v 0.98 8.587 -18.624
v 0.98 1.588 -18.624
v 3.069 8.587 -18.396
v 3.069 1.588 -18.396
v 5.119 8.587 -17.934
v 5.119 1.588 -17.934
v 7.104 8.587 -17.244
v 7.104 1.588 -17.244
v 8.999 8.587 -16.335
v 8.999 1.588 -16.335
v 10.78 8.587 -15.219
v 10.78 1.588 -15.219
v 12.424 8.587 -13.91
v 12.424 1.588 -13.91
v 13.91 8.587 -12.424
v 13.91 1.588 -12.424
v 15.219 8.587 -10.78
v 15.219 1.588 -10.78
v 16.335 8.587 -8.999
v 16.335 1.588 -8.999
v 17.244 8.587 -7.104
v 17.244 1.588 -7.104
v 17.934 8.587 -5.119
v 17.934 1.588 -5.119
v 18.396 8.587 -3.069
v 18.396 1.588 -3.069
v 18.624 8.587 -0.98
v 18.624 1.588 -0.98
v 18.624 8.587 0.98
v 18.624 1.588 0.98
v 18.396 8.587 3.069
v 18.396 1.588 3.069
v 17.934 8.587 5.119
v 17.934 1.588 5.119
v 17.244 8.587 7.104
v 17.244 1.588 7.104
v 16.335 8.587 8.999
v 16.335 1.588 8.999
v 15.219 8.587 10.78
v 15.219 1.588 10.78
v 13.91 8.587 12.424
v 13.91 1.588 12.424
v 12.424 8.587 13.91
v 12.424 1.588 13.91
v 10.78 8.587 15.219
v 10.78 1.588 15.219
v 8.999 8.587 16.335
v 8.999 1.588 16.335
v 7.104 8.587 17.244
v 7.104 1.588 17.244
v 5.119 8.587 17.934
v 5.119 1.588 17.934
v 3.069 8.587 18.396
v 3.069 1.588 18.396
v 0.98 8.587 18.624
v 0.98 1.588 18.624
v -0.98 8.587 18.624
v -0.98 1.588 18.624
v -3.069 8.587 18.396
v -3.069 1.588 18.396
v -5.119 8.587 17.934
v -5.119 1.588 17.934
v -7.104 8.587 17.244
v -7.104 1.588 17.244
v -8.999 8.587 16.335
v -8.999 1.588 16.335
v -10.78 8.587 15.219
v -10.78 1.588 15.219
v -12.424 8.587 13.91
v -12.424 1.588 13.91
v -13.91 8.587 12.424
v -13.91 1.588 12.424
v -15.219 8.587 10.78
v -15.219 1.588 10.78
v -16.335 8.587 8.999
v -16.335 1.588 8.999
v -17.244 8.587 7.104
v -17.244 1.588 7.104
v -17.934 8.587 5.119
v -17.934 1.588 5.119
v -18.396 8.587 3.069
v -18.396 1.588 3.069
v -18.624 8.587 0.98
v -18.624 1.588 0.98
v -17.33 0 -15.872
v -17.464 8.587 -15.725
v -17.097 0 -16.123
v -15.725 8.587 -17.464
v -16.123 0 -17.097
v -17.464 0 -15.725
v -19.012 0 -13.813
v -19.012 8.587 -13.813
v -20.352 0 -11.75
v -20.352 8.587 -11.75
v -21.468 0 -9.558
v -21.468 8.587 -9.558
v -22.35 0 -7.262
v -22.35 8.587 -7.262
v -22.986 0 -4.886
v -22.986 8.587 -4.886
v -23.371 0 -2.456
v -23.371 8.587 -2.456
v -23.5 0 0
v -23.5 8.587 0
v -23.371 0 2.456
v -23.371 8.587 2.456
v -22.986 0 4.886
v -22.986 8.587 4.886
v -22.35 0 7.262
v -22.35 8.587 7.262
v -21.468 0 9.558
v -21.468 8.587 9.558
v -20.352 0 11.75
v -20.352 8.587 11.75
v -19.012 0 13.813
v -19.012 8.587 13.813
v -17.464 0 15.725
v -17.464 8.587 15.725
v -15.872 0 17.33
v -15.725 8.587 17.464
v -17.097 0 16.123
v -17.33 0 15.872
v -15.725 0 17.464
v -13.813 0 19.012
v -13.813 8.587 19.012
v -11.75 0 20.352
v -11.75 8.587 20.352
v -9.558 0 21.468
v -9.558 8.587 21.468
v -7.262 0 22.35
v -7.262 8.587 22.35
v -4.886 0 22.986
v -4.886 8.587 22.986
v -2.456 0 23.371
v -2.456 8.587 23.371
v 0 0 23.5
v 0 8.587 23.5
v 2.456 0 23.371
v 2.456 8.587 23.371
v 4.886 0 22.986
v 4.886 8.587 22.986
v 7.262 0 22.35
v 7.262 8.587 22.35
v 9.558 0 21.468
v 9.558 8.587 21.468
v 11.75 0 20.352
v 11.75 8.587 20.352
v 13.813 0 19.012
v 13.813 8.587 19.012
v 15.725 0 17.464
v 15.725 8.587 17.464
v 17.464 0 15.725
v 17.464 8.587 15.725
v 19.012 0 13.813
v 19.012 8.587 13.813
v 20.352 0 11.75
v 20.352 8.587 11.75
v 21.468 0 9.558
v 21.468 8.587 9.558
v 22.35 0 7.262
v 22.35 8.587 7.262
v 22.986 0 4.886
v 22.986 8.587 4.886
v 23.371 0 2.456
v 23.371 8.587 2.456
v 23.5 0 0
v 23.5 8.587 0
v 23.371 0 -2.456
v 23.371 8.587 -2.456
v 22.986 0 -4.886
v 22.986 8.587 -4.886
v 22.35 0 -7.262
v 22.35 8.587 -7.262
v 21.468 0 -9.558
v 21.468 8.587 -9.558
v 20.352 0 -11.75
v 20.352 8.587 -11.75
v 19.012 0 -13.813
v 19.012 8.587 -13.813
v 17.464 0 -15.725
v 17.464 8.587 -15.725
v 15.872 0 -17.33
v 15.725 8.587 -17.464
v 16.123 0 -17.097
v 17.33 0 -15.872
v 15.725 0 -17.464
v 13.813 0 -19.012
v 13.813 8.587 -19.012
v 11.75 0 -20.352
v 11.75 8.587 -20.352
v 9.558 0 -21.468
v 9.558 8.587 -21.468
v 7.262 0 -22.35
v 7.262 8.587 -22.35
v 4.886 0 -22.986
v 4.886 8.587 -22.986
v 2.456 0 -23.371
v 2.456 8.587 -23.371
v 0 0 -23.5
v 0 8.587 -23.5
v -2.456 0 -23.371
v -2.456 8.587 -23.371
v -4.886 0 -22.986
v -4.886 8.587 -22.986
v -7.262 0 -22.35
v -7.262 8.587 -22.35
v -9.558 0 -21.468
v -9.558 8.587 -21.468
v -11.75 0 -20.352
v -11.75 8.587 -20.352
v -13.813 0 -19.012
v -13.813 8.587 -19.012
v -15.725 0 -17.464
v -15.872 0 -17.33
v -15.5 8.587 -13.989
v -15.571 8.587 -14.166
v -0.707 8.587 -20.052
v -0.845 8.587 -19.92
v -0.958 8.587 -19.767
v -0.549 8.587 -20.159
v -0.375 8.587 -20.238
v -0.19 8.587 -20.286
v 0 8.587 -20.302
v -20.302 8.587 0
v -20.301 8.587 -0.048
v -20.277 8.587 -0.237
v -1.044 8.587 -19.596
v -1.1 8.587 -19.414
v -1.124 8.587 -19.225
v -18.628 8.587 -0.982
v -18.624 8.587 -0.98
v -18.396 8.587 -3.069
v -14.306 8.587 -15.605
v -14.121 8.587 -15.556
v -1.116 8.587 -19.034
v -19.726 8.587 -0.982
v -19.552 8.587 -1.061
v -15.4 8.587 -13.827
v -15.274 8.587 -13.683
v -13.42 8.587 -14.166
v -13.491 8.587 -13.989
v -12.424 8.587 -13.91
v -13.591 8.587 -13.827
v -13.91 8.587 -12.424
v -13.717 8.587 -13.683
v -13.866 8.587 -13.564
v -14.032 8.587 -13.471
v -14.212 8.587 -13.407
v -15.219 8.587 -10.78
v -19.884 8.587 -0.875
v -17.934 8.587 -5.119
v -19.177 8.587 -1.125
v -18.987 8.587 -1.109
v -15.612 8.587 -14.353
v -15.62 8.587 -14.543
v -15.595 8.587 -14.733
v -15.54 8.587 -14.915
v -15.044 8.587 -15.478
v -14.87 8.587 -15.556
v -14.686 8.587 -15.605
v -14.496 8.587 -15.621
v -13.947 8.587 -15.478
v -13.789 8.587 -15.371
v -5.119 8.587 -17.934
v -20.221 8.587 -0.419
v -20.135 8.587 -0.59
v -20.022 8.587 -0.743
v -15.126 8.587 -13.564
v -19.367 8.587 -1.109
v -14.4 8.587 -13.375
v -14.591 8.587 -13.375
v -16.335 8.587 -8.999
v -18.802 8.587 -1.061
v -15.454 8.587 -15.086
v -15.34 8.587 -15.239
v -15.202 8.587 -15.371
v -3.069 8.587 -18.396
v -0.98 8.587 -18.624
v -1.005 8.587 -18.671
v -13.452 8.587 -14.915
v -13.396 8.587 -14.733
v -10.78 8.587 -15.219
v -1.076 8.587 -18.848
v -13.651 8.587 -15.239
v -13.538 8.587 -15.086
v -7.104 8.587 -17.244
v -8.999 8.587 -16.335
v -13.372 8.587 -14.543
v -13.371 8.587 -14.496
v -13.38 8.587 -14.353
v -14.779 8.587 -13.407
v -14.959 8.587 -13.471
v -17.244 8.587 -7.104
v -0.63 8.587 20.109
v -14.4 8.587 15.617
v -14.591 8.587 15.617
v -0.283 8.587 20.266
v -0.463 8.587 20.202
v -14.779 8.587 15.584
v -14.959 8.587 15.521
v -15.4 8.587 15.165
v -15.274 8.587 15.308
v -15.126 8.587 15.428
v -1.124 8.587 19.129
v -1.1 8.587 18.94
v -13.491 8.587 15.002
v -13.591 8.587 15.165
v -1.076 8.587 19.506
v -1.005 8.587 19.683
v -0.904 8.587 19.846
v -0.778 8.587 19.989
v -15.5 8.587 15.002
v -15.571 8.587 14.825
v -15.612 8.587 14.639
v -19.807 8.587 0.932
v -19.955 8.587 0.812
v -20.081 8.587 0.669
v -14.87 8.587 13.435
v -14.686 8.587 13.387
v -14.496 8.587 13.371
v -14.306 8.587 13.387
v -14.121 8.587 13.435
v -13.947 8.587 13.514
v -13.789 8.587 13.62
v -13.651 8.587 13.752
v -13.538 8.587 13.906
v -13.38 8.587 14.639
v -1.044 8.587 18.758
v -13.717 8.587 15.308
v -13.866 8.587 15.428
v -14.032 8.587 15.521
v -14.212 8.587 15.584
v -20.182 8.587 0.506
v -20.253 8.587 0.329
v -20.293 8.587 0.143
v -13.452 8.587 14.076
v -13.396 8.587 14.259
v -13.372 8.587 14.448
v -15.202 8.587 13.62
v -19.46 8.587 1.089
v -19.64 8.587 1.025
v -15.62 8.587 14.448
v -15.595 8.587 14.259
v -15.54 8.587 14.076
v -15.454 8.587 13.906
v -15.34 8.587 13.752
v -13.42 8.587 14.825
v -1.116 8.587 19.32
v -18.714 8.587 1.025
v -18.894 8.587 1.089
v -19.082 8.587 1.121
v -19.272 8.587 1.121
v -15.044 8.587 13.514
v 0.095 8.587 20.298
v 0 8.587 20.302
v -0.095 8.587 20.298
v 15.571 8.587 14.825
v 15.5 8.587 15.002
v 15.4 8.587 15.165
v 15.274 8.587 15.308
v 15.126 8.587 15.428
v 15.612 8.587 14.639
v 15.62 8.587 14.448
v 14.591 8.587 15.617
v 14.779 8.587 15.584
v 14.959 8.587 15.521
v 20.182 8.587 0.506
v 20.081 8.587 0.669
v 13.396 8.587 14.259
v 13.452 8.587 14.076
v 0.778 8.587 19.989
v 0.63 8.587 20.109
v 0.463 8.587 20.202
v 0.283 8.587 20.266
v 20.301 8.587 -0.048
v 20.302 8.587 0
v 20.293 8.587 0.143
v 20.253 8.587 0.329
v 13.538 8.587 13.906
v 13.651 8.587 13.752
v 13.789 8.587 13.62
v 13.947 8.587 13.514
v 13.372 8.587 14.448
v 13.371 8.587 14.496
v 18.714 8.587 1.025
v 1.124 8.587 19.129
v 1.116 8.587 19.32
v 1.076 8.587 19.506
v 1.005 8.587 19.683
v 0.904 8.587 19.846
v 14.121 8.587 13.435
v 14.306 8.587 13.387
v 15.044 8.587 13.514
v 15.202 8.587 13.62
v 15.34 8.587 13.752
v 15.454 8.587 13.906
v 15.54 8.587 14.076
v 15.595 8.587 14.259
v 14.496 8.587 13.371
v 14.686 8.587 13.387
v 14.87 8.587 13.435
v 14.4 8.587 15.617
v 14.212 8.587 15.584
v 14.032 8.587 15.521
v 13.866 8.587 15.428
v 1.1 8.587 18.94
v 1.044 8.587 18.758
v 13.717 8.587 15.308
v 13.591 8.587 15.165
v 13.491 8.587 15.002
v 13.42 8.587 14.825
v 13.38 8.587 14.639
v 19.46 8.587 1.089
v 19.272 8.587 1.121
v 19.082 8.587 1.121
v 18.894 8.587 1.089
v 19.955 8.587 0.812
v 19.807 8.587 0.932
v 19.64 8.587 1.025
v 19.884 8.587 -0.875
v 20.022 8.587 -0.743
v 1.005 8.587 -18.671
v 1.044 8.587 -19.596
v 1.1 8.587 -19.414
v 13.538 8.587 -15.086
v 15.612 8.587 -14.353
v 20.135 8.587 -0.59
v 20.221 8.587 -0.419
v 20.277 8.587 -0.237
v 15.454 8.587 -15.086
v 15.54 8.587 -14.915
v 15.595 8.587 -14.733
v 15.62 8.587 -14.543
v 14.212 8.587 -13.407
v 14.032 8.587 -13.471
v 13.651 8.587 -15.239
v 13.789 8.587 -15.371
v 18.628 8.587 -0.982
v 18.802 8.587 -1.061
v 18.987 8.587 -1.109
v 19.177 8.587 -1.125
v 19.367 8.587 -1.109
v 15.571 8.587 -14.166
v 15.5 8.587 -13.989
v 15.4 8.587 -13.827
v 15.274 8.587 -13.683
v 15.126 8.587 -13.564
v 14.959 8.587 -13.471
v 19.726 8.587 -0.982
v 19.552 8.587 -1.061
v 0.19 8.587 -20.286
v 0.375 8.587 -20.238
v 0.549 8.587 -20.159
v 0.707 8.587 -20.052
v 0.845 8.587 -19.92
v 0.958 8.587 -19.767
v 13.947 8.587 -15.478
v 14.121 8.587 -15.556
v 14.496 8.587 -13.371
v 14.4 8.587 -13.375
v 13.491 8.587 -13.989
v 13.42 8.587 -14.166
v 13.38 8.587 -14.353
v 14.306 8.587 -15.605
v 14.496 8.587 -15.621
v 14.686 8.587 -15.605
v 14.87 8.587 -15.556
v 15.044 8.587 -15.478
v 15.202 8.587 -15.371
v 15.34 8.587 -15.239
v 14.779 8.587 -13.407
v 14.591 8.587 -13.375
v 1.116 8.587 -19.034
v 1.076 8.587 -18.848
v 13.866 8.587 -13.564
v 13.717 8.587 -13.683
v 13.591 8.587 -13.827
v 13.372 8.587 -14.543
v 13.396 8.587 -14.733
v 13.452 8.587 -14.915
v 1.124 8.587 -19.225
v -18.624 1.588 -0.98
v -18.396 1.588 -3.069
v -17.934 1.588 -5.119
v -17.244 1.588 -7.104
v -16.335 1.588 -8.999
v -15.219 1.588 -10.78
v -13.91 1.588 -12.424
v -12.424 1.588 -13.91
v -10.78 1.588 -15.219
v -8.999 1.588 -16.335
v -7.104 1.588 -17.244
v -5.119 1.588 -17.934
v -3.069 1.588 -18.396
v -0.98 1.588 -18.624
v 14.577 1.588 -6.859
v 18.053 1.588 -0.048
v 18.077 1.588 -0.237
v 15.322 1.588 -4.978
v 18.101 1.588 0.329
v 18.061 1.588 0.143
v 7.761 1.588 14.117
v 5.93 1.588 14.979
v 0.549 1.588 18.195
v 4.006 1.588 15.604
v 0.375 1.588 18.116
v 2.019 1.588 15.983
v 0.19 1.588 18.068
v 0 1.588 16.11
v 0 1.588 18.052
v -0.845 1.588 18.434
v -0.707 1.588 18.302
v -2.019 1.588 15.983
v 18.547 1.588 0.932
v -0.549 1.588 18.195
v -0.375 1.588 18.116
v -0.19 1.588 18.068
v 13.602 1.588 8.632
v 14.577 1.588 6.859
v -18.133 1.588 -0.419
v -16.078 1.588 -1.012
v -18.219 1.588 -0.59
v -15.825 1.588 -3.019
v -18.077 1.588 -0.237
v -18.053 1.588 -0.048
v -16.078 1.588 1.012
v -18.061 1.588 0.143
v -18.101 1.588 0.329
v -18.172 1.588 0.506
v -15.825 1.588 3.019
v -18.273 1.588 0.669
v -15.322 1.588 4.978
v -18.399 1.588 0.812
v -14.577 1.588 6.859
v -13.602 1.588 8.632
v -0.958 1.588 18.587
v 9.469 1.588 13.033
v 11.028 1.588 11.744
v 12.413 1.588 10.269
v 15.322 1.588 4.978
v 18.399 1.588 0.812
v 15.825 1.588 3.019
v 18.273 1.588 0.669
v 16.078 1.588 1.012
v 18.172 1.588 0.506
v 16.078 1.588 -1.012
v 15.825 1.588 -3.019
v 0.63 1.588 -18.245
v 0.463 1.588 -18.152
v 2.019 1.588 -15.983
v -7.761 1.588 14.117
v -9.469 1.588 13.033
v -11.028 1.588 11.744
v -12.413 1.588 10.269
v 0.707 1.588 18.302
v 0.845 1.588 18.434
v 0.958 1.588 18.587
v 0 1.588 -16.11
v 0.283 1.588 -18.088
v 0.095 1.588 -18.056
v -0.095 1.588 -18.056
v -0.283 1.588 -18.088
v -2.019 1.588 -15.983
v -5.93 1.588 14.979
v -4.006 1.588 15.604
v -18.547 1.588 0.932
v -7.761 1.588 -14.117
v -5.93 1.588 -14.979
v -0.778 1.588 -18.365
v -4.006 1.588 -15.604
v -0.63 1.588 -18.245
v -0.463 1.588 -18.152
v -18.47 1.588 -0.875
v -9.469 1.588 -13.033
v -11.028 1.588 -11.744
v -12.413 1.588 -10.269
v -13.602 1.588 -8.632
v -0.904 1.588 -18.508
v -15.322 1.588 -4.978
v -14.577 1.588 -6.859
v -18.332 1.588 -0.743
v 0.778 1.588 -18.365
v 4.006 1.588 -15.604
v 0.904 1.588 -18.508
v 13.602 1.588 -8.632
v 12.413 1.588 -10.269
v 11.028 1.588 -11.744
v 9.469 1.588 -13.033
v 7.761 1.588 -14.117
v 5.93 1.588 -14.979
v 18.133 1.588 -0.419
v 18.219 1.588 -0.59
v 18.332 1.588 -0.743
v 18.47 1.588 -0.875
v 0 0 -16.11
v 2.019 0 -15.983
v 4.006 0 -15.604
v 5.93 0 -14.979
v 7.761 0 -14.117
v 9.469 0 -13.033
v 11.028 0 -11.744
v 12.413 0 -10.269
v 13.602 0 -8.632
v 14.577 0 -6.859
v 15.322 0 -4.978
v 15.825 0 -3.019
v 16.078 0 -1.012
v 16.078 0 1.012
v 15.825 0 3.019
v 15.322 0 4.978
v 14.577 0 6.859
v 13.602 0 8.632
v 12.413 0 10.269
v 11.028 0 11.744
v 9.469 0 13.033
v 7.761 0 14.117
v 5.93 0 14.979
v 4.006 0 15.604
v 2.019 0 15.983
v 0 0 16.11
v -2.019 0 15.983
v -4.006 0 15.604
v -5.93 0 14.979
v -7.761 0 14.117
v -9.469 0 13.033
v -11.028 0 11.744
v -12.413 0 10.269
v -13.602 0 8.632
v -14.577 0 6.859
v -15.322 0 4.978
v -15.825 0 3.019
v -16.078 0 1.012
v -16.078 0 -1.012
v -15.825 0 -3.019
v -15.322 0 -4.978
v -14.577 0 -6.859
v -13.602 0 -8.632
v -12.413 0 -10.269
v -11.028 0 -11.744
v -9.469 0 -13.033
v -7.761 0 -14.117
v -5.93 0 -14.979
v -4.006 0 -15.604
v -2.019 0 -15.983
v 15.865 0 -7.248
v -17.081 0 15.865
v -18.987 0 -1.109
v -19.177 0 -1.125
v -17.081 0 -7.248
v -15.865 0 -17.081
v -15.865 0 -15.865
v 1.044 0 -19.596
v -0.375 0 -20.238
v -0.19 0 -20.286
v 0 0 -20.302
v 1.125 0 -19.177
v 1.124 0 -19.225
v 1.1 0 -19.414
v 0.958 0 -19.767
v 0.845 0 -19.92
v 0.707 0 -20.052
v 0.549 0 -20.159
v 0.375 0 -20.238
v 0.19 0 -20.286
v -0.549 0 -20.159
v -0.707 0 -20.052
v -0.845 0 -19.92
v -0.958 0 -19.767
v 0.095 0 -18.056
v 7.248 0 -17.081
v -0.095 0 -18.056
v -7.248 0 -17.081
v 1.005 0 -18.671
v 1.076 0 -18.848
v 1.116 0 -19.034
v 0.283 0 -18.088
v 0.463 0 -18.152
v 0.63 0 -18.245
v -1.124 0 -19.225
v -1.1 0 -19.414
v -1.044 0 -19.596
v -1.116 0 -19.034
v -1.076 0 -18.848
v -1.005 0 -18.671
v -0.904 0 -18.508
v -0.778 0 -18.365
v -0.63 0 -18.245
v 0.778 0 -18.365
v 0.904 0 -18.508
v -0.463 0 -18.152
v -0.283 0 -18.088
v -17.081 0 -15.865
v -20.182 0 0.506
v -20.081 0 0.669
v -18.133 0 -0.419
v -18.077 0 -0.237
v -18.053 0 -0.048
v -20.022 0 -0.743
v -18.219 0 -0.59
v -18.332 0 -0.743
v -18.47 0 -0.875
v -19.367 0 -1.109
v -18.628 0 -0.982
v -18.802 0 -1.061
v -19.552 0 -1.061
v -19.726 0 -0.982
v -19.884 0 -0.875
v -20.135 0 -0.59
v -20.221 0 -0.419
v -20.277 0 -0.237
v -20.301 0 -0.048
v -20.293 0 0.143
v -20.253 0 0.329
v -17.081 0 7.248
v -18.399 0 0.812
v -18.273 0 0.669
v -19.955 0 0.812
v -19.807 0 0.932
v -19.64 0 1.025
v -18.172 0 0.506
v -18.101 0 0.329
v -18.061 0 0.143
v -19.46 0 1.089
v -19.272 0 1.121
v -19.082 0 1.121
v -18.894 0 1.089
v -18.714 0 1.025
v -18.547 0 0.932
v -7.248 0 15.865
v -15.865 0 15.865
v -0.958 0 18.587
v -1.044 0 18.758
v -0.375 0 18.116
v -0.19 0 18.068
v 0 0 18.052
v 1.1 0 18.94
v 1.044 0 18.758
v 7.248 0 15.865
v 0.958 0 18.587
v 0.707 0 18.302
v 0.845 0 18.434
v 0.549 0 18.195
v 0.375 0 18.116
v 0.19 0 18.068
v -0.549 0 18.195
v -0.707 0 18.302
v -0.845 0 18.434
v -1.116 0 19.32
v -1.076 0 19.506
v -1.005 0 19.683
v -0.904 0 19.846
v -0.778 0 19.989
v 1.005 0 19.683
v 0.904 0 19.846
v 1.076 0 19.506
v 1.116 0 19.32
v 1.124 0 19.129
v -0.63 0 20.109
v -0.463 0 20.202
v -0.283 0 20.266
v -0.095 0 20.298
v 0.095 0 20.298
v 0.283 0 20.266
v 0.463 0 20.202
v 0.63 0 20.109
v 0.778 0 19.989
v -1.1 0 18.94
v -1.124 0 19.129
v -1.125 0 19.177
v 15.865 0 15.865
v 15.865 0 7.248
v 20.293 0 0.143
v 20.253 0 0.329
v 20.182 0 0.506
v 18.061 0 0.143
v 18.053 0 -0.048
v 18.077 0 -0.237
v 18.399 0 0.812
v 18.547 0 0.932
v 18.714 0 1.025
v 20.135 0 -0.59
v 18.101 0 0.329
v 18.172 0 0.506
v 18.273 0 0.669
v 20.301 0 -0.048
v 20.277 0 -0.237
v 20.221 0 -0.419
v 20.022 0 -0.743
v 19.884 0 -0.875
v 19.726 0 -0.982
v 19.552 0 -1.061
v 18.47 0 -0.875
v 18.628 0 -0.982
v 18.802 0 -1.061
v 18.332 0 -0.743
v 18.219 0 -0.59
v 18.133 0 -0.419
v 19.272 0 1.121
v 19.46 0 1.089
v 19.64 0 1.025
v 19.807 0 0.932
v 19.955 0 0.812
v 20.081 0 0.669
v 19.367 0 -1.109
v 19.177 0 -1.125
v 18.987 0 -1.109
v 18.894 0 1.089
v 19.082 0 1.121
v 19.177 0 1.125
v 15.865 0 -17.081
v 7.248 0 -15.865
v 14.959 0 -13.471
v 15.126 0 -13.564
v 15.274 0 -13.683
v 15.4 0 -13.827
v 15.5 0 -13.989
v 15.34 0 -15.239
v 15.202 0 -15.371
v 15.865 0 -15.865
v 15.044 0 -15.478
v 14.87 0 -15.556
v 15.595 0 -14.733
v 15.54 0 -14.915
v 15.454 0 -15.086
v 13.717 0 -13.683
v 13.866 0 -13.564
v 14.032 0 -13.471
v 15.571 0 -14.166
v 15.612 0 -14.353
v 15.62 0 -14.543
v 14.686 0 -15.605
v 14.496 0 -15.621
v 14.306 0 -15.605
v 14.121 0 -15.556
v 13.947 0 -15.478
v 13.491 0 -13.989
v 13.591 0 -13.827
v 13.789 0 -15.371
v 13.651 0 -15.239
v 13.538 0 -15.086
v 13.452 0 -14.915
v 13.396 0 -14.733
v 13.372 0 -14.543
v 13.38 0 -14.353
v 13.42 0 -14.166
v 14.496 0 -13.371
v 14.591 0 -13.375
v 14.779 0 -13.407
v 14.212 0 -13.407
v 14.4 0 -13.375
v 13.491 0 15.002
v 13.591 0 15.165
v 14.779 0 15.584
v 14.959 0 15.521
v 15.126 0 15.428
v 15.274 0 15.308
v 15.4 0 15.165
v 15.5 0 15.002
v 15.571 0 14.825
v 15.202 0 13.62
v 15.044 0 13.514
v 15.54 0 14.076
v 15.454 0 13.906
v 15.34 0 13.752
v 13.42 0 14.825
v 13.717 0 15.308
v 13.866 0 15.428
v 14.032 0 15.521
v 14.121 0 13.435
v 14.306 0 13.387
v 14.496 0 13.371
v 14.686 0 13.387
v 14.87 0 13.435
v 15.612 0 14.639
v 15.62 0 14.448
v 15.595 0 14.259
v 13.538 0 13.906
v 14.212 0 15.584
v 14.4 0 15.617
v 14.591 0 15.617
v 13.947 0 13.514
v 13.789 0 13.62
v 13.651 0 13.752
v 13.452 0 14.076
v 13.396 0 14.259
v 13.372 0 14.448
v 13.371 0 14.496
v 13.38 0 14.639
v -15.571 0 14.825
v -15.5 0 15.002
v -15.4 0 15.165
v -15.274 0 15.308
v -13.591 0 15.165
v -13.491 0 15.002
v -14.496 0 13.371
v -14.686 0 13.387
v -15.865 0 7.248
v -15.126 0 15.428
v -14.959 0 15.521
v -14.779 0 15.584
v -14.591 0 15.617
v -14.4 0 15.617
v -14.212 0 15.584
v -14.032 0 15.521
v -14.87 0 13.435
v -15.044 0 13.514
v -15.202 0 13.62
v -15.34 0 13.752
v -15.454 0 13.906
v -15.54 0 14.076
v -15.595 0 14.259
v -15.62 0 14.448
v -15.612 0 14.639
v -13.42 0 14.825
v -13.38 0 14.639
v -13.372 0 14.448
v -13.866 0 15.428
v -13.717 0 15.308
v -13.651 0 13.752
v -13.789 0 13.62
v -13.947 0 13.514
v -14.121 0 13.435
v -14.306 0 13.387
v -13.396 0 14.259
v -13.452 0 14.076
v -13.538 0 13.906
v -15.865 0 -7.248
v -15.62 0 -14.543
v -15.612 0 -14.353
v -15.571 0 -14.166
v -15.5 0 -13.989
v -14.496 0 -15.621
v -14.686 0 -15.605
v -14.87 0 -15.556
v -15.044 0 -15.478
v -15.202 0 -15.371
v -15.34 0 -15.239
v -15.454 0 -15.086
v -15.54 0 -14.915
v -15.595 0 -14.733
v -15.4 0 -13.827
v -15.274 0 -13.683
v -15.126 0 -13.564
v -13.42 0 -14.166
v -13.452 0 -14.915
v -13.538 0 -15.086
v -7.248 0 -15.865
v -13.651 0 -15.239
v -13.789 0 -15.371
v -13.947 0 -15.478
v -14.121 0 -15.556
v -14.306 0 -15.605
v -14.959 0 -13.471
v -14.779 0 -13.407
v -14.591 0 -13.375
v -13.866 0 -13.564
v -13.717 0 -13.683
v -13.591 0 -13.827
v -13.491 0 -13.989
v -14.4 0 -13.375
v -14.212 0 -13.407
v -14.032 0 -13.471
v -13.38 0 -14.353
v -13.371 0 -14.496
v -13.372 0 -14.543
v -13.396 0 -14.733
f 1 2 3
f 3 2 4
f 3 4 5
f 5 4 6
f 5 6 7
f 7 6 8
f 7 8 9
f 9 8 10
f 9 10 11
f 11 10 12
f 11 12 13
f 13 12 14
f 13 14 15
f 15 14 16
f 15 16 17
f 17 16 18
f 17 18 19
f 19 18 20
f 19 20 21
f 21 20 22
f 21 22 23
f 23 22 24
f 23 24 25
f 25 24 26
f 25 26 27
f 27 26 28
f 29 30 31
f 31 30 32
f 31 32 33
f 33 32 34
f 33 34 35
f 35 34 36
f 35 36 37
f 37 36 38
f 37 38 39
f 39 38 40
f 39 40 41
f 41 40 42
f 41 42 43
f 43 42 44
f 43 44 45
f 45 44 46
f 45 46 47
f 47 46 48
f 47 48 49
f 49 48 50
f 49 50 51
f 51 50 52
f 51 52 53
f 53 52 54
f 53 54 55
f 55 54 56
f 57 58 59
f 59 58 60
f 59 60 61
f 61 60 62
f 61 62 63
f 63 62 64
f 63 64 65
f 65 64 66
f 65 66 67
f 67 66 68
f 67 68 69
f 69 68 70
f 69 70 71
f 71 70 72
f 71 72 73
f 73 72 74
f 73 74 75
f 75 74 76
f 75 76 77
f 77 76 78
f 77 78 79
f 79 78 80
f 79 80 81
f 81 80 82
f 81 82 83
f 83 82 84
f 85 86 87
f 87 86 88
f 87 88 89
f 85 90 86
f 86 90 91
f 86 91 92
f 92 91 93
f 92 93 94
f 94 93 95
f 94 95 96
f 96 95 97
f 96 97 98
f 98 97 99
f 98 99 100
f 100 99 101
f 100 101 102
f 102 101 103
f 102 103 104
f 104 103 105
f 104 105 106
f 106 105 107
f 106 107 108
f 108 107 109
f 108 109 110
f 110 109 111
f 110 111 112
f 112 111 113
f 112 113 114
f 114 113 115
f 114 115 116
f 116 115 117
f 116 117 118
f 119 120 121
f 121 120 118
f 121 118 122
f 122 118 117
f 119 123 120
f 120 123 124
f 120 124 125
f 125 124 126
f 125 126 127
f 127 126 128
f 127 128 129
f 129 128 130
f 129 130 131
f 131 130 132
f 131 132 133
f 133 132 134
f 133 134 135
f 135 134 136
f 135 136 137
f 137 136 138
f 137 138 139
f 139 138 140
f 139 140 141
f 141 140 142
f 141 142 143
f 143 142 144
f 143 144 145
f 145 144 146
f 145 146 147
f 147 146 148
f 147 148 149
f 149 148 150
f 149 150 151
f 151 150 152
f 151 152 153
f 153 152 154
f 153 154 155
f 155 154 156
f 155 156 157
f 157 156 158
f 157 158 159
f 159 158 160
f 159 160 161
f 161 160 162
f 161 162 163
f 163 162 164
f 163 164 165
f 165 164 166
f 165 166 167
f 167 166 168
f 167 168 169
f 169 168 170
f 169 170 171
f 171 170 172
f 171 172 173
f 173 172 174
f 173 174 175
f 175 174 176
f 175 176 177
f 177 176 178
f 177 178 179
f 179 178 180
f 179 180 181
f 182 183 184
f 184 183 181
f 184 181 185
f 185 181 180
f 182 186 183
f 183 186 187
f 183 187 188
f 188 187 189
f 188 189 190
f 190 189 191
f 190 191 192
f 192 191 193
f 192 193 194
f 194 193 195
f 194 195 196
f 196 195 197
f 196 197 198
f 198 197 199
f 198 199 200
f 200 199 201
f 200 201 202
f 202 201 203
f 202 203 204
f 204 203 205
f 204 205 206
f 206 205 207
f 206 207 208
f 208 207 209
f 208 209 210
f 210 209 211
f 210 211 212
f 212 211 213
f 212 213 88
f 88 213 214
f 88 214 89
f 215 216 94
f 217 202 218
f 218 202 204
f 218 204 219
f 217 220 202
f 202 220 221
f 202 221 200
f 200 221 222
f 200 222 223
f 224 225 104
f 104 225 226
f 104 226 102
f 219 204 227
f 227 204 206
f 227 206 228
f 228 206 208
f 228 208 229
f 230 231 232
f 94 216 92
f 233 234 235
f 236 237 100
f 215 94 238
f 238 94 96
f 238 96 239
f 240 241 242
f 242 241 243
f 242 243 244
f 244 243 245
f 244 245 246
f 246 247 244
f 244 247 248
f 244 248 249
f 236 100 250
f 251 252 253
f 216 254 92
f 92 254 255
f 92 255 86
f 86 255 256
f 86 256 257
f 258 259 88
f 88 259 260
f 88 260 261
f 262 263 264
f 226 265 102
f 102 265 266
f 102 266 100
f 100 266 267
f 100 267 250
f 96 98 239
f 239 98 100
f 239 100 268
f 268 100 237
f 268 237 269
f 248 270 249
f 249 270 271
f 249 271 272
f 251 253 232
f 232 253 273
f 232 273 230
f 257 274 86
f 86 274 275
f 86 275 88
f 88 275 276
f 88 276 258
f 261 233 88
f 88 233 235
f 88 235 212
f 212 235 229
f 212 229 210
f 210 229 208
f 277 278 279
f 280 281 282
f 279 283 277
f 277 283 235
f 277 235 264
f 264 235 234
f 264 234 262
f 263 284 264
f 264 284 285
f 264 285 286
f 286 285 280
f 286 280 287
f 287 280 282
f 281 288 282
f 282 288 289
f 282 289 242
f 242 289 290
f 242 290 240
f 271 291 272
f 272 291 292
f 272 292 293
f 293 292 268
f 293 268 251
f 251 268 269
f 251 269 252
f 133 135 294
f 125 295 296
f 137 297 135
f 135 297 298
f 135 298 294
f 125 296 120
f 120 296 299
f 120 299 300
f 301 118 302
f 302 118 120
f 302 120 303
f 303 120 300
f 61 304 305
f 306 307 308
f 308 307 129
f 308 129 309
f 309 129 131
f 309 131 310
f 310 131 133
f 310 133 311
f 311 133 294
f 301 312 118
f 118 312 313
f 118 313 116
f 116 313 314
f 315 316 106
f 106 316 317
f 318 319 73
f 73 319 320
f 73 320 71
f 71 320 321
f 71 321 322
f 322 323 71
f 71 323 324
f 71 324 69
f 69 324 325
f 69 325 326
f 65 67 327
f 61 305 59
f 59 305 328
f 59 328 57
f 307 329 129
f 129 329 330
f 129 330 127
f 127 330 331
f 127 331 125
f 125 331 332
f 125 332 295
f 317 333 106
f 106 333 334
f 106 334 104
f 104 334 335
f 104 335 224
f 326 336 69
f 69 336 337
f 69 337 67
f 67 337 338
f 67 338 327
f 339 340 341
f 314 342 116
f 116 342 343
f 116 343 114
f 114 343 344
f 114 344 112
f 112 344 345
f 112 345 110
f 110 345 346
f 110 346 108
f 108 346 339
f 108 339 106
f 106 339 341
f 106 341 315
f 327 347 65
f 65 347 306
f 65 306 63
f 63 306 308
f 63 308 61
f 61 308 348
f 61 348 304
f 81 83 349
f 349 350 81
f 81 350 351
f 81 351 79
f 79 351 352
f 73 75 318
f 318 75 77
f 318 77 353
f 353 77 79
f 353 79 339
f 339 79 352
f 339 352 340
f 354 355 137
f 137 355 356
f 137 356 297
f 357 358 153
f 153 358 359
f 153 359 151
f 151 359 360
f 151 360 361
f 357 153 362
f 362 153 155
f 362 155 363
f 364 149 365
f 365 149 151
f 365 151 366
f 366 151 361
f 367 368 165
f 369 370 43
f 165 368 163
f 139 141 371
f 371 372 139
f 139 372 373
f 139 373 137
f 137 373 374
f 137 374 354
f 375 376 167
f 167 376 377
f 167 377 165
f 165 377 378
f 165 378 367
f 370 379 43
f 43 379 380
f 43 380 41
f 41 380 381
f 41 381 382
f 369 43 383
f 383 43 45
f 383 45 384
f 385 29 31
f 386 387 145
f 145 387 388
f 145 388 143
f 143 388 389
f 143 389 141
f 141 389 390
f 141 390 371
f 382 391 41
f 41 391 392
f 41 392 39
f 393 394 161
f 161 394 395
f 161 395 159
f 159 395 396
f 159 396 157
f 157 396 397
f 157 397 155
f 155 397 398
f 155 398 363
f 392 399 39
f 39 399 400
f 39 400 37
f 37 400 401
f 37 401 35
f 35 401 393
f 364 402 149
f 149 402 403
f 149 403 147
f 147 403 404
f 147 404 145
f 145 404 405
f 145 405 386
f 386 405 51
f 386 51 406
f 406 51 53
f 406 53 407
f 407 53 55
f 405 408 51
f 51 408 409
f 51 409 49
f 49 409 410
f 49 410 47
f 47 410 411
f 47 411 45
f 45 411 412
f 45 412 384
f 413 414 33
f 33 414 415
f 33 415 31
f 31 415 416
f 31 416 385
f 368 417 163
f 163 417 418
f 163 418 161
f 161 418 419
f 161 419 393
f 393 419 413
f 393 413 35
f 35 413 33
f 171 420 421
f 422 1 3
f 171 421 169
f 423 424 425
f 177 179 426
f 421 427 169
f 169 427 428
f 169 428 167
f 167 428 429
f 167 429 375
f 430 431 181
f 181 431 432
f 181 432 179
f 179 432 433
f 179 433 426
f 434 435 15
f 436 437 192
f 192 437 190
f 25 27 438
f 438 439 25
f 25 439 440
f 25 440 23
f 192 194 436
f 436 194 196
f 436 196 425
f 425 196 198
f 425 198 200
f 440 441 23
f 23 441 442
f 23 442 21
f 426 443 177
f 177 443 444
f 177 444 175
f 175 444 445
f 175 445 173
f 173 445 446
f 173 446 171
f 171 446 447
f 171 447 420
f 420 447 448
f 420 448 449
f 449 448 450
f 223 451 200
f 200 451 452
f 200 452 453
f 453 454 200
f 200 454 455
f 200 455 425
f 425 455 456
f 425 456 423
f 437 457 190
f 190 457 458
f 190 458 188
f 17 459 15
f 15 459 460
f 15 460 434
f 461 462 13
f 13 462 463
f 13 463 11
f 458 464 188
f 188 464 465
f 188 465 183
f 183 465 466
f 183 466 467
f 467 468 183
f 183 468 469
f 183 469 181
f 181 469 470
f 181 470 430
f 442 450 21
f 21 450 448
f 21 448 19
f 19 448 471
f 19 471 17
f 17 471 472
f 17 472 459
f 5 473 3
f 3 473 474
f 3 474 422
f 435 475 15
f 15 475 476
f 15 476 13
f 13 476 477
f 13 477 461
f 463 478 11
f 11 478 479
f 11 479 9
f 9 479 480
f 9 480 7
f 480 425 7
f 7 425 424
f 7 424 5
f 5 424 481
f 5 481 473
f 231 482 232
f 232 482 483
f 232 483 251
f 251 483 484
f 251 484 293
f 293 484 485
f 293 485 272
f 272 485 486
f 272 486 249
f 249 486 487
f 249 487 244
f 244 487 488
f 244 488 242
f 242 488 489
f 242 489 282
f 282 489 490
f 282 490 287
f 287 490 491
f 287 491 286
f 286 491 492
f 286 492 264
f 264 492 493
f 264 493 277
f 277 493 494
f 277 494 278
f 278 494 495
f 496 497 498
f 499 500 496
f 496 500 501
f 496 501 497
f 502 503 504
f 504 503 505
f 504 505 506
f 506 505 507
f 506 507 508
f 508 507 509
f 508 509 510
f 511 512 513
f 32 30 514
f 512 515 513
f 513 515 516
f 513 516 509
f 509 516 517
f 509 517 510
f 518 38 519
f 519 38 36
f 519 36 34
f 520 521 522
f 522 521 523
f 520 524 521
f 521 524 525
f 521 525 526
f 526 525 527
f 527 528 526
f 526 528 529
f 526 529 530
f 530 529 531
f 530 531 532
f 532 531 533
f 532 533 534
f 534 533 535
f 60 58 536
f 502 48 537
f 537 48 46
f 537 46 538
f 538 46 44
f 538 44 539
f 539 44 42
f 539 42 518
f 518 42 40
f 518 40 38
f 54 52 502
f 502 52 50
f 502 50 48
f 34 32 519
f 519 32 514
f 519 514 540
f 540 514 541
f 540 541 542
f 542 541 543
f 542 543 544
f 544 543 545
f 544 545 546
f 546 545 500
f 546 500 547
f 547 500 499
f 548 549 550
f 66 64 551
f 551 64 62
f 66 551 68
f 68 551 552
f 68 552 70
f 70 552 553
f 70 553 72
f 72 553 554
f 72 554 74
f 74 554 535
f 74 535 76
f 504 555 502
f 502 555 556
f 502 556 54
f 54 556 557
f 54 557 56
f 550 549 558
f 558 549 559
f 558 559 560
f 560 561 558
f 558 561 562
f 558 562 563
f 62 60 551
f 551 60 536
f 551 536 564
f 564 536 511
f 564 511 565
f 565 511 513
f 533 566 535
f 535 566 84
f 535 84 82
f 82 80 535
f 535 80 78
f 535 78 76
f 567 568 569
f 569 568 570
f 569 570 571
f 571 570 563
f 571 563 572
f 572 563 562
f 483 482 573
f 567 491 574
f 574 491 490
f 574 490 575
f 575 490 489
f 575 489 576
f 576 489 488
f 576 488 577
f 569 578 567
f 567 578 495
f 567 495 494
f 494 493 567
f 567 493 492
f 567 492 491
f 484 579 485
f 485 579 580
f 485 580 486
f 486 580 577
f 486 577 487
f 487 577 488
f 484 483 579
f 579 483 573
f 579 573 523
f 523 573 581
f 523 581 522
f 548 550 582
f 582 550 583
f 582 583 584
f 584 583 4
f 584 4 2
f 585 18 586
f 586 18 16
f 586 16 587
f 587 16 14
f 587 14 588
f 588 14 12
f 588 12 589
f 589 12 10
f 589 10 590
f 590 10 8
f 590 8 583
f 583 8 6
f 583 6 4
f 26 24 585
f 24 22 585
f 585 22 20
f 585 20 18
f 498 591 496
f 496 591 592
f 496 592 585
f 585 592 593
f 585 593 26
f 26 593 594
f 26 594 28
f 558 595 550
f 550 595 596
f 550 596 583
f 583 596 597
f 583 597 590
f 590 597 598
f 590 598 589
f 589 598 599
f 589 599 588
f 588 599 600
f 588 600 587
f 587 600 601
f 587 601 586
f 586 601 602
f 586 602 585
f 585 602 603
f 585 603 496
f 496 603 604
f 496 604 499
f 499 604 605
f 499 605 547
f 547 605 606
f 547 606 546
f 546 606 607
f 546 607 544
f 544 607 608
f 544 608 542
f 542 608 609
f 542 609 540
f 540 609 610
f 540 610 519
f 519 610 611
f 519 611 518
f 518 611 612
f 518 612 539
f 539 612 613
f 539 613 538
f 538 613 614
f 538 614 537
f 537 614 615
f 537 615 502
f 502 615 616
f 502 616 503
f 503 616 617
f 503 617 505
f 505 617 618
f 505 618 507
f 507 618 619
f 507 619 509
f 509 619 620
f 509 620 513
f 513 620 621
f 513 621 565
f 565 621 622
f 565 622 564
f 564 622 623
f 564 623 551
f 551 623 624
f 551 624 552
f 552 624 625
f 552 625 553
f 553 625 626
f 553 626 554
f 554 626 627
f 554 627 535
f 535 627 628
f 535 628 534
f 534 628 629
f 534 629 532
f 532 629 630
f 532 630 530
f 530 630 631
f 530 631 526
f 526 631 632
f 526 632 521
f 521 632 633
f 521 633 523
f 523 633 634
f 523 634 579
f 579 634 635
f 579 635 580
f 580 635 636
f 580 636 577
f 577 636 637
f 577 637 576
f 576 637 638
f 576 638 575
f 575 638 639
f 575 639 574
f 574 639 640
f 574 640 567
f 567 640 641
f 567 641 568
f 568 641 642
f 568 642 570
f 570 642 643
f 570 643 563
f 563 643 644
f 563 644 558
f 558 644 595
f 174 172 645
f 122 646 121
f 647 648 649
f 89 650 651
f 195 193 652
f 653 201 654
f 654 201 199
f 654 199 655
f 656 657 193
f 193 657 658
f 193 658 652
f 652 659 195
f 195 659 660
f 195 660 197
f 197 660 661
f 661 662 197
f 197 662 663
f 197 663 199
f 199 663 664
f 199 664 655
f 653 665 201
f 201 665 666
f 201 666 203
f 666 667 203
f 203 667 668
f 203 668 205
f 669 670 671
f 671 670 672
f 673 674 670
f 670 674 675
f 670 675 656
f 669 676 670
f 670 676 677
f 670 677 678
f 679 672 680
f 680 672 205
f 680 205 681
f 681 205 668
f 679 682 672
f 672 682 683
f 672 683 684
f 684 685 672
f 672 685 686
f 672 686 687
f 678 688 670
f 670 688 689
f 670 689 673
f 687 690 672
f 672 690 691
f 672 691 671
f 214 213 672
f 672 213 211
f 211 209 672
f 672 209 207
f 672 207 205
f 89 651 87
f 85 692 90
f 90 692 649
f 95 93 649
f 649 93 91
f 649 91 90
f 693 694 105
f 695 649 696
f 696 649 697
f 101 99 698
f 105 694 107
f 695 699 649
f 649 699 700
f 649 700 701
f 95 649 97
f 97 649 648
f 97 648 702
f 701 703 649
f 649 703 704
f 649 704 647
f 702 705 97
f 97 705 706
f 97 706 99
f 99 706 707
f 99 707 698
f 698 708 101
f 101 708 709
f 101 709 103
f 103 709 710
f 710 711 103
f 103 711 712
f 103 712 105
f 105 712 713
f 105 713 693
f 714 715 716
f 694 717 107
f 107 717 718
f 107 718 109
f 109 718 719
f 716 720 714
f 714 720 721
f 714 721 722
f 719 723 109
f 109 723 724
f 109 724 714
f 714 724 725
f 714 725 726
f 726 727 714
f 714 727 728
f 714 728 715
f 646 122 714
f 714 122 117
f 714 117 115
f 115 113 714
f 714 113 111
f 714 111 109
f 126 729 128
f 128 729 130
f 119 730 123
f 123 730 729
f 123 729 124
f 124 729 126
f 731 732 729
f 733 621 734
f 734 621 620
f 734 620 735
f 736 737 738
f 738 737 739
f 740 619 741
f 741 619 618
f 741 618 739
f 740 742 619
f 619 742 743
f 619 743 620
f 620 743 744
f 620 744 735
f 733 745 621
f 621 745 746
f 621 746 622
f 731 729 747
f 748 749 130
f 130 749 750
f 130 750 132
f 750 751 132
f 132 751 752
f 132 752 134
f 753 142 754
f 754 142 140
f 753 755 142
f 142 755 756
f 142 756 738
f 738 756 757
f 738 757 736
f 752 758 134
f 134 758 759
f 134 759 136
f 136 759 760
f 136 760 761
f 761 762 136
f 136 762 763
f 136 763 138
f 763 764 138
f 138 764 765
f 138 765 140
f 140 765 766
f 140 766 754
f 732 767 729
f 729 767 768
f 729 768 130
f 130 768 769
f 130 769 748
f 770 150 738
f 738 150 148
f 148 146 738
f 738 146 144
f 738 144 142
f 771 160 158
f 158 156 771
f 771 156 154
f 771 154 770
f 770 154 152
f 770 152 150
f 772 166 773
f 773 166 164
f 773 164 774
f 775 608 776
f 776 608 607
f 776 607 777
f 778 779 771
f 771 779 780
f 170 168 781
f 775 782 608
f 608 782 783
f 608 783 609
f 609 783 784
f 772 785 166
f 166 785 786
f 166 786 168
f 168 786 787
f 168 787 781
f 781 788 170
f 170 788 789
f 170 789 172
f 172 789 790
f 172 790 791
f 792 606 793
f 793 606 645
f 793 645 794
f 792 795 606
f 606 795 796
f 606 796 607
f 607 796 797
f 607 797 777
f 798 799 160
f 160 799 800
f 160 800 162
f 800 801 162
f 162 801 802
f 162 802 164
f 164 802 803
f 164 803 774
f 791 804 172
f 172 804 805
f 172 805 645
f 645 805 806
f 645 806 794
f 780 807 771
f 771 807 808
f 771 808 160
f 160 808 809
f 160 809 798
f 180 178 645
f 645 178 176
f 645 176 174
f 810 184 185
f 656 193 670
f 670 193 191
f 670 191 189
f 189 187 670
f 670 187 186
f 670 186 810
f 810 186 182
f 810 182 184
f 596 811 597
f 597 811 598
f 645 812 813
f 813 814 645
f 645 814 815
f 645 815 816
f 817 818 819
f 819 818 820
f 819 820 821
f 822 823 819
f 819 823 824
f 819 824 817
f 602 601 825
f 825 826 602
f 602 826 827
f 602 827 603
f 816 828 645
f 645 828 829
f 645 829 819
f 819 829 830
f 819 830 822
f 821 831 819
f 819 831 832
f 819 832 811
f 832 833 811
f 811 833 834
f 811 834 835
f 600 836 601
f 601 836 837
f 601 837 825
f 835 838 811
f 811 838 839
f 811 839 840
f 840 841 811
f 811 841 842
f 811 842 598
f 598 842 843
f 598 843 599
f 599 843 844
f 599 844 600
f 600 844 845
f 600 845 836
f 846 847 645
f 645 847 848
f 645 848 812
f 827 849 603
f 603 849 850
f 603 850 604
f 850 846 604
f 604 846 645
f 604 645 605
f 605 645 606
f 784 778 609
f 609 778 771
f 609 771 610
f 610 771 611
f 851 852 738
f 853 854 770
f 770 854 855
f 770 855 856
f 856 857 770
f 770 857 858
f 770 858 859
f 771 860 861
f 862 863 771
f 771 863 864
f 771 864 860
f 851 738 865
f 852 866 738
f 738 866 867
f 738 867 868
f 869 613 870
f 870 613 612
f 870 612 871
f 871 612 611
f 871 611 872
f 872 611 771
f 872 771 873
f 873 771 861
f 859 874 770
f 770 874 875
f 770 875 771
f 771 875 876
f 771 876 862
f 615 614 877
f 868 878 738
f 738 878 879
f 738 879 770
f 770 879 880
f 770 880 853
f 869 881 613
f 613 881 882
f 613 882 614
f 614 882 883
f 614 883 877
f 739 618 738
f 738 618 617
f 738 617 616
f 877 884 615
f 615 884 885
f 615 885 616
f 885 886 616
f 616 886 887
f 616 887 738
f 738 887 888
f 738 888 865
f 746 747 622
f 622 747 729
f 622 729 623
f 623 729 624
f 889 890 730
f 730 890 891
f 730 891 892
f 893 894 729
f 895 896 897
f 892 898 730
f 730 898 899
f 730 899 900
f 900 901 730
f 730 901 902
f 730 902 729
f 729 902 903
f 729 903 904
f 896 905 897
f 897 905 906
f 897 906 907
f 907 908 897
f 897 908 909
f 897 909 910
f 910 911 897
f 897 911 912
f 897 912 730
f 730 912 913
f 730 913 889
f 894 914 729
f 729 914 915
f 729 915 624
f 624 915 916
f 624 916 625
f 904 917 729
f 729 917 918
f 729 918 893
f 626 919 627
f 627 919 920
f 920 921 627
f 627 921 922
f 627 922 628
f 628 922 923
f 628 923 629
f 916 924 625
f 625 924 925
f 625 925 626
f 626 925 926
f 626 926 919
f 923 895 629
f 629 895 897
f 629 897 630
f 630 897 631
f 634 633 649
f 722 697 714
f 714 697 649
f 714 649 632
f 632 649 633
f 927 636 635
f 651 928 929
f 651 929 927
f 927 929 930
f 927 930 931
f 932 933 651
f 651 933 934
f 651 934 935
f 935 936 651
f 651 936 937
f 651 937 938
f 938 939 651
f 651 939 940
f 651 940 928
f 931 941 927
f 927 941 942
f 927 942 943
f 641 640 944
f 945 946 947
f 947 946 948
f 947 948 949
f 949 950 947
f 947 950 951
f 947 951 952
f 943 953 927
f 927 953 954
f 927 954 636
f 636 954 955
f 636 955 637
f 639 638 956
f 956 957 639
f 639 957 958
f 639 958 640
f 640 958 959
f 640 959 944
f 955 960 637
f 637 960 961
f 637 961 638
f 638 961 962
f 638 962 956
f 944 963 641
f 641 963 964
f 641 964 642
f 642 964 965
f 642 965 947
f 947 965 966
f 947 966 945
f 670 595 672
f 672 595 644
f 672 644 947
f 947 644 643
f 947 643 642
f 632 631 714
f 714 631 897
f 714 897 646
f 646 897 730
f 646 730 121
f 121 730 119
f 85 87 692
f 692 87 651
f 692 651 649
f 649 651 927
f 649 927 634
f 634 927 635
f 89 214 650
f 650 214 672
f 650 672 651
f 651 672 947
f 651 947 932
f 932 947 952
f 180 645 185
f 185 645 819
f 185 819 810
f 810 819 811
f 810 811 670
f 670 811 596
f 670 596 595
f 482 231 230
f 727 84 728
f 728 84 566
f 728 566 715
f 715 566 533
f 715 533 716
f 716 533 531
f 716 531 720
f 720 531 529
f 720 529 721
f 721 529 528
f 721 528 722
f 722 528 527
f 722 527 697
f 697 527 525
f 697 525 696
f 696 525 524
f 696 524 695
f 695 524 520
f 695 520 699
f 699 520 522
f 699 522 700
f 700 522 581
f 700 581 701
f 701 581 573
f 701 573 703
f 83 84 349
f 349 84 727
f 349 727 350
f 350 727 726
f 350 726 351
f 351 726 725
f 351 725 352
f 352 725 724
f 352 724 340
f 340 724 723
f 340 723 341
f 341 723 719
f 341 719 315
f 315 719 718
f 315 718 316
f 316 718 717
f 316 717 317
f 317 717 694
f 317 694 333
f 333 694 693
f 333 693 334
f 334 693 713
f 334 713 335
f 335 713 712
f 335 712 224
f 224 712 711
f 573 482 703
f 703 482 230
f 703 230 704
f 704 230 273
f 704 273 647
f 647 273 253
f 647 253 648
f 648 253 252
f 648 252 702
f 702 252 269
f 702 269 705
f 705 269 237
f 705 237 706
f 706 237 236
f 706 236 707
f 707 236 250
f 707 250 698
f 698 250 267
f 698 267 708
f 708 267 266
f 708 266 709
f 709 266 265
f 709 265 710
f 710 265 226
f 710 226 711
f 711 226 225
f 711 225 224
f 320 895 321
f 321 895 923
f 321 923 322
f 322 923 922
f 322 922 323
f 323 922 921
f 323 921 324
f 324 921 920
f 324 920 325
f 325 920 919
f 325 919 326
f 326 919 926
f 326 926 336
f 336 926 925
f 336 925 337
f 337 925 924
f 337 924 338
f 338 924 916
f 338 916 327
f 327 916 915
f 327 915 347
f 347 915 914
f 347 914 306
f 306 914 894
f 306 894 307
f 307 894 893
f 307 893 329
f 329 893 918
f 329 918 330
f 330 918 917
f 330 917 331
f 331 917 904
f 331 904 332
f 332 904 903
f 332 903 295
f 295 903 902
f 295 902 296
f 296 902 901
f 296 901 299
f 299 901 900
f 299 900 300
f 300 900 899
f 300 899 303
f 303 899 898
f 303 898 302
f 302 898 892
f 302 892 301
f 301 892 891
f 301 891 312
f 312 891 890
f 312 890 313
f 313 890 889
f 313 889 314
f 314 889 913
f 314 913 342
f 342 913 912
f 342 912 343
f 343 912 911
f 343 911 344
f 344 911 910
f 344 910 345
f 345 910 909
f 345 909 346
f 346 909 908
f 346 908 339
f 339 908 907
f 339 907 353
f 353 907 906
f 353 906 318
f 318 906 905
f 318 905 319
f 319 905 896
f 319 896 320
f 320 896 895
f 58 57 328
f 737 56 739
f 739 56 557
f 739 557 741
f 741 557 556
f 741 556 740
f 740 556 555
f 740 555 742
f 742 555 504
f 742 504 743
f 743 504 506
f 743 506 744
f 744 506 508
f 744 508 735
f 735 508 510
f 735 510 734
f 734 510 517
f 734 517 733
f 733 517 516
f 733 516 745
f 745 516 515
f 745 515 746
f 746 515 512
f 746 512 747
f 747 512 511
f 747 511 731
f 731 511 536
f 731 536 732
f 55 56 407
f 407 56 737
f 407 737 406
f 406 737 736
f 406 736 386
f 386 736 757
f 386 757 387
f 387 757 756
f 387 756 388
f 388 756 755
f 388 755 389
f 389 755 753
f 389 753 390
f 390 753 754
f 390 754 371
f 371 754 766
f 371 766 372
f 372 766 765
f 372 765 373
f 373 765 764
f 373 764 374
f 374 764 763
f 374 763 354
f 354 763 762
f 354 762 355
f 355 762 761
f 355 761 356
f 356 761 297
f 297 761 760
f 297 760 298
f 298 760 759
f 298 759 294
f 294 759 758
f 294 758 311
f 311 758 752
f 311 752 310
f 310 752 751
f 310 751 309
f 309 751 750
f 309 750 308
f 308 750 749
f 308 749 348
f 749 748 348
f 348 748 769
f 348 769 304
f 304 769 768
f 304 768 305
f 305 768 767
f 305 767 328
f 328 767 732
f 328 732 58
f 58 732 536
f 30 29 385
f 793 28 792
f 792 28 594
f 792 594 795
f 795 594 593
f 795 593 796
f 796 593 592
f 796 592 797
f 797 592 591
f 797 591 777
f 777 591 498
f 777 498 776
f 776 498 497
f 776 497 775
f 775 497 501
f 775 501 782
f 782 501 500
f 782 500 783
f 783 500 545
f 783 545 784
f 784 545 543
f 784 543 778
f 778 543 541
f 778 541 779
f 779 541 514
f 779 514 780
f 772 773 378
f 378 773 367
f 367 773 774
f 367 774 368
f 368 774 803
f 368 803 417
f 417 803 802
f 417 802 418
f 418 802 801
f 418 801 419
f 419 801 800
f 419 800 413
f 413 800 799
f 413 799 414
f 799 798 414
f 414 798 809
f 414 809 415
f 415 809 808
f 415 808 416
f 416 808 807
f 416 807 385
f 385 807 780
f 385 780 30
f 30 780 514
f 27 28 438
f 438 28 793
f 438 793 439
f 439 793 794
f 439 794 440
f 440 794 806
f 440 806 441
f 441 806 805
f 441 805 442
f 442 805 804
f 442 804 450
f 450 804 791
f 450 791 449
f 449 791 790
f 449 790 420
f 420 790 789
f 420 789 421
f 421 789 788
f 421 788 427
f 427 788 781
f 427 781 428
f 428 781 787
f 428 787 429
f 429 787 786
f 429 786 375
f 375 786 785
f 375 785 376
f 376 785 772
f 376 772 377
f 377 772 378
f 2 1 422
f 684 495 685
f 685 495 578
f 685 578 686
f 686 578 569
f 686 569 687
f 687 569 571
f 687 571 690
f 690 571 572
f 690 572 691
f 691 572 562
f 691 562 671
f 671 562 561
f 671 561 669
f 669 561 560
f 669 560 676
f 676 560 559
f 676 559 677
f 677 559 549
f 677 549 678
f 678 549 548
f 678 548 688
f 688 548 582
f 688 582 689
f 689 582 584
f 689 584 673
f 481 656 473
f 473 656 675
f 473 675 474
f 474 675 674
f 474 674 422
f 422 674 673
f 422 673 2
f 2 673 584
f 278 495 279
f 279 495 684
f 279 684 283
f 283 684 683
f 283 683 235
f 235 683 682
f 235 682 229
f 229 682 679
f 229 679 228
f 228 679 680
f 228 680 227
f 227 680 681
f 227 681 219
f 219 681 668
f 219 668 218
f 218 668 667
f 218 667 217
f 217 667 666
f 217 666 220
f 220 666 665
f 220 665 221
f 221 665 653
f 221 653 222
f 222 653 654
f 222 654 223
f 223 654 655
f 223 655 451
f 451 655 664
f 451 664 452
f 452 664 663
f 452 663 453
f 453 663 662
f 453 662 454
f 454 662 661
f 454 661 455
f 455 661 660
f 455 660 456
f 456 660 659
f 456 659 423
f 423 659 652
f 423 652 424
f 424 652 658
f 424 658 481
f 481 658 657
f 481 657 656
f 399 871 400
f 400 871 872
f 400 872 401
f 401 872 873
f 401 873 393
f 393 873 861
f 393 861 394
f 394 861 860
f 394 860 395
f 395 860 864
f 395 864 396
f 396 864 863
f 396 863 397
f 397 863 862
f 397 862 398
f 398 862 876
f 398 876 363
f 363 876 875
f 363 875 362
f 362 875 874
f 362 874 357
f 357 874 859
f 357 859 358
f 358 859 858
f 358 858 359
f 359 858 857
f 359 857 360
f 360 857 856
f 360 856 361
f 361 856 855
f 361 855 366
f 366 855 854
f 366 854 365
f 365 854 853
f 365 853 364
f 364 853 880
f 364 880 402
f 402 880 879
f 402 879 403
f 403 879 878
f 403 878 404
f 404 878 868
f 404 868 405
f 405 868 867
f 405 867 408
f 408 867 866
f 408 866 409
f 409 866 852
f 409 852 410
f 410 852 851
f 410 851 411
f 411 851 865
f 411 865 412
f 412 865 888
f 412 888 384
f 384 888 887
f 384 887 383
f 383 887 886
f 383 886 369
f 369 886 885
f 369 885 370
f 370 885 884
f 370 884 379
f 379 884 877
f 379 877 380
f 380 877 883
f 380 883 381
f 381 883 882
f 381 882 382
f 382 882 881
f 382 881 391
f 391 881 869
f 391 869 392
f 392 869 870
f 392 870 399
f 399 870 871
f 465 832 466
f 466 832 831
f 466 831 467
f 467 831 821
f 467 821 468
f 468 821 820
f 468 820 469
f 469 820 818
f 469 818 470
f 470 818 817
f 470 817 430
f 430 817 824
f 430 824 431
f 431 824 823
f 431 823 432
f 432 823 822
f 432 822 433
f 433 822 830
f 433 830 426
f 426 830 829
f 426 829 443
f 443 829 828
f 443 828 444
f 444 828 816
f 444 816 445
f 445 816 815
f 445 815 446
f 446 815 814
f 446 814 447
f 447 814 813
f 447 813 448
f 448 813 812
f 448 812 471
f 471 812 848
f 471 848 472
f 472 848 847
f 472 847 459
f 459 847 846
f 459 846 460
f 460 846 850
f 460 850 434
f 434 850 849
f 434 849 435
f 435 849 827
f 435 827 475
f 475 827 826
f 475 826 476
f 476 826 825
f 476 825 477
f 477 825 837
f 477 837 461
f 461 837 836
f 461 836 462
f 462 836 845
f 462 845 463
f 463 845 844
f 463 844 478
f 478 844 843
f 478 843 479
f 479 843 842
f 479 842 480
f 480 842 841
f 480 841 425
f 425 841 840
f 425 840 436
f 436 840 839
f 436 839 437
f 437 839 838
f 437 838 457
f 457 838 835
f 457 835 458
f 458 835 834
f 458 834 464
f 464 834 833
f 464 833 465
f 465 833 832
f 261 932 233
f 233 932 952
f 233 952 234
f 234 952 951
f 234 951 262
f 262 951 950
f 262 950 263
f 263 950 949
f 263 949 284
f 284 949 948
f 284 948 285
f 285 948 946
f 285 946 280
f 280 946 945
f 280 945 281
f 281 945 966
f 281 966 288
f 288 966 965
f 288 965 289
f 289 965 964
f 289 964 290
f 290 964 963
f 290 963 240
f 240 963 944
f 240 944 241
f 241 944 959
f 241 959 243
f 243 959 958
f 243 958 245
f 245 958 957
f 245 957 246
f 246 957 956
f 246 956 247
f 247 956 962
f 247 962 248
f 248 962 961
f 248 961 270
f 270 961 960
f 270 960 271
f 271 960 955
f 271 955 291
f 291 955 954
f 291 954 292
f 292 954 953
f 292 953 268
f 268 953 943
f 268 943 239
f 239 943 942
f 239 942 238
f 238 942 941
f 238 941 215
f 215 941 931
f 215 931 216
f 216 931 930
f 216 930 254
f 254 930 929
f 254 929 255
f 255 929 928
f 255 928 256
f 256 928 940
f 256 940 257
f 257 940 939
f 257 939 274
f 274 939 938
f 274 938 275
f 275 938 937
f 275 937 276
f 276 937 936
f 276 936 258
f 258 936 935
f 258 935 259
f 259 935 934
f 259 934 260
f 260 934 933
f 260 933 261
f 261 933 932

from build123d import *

# Parameters (mm, degrees)
SKETCH2_R          = 1.125
CUT_EXTRUDE1_DEPTH = 35.325575833
SKETCH3_R          = 1.125
CUT_EXTRUDE2_DEPTH = 35.325575833
CIRPATTERN1_COUNT  = 4


with BuildPart() as part:
    # Sketch1 → Revolve1 (revolve)
    with BuildSketch(Plane.XY):
        Polygon((-23.5, 8.5875), (-18.65, 8.5875), (-18.65, 1.5875), (-16.11, 1.5875), (-16.11, 0), (-23.5, 0), align=None)
    revolve(axis=Axis((0, 0, 0), (0, 1, 0)))

    # Sketch2 → Cut-Extrude1 (cut, through all)
    with BuildSketch(Plane(origin=(0, 0, 0), x_dir=(-1, 0, 0), z_dir=(0, -1, 0))):
        with Locations((19.177, 0)):
            Circle(SKETCH2_R)
    cut_extrude1 = extrude(amount=-CUT_EXTRUDE1_DEPTH, mode=Mode.SUBTRACT)

    # Sketch3 → Cut-Extrude2 (cut, through all)
    with BuildSketch(Plane.XZ):
        with Locations((-14.495689029, 14.495689029)):
            Circle(SKETCH3_R)
    cut_extrude2 = extrude(amount=-CUT_EXTRUDE2_DEPTH, mode=Mode.SUBTRACT)

    # CirPattern1: Cut-Extrude1, Cut-Extrude2 ×4 about axis
    cirpattern1_axis = Axis((0, 8.5875, 0), (0, -1, 0))
    add([cut_extrude1.rotate(cirpattern1_axis, i * 360 / CIRPATTERN1_COUNT) for i in range(1, CIRPATTERN1_COUNT)], mode=Mode.SUBTRACT)
    add([cut_extrude2.rotate(cirpattern1_axis, i * 360 / CIRPATTERN1_COUNT) for i in range(1, CIRPATTERN1_COUNT)], mode=Mode.SUBTRACT)


solid = part.part
